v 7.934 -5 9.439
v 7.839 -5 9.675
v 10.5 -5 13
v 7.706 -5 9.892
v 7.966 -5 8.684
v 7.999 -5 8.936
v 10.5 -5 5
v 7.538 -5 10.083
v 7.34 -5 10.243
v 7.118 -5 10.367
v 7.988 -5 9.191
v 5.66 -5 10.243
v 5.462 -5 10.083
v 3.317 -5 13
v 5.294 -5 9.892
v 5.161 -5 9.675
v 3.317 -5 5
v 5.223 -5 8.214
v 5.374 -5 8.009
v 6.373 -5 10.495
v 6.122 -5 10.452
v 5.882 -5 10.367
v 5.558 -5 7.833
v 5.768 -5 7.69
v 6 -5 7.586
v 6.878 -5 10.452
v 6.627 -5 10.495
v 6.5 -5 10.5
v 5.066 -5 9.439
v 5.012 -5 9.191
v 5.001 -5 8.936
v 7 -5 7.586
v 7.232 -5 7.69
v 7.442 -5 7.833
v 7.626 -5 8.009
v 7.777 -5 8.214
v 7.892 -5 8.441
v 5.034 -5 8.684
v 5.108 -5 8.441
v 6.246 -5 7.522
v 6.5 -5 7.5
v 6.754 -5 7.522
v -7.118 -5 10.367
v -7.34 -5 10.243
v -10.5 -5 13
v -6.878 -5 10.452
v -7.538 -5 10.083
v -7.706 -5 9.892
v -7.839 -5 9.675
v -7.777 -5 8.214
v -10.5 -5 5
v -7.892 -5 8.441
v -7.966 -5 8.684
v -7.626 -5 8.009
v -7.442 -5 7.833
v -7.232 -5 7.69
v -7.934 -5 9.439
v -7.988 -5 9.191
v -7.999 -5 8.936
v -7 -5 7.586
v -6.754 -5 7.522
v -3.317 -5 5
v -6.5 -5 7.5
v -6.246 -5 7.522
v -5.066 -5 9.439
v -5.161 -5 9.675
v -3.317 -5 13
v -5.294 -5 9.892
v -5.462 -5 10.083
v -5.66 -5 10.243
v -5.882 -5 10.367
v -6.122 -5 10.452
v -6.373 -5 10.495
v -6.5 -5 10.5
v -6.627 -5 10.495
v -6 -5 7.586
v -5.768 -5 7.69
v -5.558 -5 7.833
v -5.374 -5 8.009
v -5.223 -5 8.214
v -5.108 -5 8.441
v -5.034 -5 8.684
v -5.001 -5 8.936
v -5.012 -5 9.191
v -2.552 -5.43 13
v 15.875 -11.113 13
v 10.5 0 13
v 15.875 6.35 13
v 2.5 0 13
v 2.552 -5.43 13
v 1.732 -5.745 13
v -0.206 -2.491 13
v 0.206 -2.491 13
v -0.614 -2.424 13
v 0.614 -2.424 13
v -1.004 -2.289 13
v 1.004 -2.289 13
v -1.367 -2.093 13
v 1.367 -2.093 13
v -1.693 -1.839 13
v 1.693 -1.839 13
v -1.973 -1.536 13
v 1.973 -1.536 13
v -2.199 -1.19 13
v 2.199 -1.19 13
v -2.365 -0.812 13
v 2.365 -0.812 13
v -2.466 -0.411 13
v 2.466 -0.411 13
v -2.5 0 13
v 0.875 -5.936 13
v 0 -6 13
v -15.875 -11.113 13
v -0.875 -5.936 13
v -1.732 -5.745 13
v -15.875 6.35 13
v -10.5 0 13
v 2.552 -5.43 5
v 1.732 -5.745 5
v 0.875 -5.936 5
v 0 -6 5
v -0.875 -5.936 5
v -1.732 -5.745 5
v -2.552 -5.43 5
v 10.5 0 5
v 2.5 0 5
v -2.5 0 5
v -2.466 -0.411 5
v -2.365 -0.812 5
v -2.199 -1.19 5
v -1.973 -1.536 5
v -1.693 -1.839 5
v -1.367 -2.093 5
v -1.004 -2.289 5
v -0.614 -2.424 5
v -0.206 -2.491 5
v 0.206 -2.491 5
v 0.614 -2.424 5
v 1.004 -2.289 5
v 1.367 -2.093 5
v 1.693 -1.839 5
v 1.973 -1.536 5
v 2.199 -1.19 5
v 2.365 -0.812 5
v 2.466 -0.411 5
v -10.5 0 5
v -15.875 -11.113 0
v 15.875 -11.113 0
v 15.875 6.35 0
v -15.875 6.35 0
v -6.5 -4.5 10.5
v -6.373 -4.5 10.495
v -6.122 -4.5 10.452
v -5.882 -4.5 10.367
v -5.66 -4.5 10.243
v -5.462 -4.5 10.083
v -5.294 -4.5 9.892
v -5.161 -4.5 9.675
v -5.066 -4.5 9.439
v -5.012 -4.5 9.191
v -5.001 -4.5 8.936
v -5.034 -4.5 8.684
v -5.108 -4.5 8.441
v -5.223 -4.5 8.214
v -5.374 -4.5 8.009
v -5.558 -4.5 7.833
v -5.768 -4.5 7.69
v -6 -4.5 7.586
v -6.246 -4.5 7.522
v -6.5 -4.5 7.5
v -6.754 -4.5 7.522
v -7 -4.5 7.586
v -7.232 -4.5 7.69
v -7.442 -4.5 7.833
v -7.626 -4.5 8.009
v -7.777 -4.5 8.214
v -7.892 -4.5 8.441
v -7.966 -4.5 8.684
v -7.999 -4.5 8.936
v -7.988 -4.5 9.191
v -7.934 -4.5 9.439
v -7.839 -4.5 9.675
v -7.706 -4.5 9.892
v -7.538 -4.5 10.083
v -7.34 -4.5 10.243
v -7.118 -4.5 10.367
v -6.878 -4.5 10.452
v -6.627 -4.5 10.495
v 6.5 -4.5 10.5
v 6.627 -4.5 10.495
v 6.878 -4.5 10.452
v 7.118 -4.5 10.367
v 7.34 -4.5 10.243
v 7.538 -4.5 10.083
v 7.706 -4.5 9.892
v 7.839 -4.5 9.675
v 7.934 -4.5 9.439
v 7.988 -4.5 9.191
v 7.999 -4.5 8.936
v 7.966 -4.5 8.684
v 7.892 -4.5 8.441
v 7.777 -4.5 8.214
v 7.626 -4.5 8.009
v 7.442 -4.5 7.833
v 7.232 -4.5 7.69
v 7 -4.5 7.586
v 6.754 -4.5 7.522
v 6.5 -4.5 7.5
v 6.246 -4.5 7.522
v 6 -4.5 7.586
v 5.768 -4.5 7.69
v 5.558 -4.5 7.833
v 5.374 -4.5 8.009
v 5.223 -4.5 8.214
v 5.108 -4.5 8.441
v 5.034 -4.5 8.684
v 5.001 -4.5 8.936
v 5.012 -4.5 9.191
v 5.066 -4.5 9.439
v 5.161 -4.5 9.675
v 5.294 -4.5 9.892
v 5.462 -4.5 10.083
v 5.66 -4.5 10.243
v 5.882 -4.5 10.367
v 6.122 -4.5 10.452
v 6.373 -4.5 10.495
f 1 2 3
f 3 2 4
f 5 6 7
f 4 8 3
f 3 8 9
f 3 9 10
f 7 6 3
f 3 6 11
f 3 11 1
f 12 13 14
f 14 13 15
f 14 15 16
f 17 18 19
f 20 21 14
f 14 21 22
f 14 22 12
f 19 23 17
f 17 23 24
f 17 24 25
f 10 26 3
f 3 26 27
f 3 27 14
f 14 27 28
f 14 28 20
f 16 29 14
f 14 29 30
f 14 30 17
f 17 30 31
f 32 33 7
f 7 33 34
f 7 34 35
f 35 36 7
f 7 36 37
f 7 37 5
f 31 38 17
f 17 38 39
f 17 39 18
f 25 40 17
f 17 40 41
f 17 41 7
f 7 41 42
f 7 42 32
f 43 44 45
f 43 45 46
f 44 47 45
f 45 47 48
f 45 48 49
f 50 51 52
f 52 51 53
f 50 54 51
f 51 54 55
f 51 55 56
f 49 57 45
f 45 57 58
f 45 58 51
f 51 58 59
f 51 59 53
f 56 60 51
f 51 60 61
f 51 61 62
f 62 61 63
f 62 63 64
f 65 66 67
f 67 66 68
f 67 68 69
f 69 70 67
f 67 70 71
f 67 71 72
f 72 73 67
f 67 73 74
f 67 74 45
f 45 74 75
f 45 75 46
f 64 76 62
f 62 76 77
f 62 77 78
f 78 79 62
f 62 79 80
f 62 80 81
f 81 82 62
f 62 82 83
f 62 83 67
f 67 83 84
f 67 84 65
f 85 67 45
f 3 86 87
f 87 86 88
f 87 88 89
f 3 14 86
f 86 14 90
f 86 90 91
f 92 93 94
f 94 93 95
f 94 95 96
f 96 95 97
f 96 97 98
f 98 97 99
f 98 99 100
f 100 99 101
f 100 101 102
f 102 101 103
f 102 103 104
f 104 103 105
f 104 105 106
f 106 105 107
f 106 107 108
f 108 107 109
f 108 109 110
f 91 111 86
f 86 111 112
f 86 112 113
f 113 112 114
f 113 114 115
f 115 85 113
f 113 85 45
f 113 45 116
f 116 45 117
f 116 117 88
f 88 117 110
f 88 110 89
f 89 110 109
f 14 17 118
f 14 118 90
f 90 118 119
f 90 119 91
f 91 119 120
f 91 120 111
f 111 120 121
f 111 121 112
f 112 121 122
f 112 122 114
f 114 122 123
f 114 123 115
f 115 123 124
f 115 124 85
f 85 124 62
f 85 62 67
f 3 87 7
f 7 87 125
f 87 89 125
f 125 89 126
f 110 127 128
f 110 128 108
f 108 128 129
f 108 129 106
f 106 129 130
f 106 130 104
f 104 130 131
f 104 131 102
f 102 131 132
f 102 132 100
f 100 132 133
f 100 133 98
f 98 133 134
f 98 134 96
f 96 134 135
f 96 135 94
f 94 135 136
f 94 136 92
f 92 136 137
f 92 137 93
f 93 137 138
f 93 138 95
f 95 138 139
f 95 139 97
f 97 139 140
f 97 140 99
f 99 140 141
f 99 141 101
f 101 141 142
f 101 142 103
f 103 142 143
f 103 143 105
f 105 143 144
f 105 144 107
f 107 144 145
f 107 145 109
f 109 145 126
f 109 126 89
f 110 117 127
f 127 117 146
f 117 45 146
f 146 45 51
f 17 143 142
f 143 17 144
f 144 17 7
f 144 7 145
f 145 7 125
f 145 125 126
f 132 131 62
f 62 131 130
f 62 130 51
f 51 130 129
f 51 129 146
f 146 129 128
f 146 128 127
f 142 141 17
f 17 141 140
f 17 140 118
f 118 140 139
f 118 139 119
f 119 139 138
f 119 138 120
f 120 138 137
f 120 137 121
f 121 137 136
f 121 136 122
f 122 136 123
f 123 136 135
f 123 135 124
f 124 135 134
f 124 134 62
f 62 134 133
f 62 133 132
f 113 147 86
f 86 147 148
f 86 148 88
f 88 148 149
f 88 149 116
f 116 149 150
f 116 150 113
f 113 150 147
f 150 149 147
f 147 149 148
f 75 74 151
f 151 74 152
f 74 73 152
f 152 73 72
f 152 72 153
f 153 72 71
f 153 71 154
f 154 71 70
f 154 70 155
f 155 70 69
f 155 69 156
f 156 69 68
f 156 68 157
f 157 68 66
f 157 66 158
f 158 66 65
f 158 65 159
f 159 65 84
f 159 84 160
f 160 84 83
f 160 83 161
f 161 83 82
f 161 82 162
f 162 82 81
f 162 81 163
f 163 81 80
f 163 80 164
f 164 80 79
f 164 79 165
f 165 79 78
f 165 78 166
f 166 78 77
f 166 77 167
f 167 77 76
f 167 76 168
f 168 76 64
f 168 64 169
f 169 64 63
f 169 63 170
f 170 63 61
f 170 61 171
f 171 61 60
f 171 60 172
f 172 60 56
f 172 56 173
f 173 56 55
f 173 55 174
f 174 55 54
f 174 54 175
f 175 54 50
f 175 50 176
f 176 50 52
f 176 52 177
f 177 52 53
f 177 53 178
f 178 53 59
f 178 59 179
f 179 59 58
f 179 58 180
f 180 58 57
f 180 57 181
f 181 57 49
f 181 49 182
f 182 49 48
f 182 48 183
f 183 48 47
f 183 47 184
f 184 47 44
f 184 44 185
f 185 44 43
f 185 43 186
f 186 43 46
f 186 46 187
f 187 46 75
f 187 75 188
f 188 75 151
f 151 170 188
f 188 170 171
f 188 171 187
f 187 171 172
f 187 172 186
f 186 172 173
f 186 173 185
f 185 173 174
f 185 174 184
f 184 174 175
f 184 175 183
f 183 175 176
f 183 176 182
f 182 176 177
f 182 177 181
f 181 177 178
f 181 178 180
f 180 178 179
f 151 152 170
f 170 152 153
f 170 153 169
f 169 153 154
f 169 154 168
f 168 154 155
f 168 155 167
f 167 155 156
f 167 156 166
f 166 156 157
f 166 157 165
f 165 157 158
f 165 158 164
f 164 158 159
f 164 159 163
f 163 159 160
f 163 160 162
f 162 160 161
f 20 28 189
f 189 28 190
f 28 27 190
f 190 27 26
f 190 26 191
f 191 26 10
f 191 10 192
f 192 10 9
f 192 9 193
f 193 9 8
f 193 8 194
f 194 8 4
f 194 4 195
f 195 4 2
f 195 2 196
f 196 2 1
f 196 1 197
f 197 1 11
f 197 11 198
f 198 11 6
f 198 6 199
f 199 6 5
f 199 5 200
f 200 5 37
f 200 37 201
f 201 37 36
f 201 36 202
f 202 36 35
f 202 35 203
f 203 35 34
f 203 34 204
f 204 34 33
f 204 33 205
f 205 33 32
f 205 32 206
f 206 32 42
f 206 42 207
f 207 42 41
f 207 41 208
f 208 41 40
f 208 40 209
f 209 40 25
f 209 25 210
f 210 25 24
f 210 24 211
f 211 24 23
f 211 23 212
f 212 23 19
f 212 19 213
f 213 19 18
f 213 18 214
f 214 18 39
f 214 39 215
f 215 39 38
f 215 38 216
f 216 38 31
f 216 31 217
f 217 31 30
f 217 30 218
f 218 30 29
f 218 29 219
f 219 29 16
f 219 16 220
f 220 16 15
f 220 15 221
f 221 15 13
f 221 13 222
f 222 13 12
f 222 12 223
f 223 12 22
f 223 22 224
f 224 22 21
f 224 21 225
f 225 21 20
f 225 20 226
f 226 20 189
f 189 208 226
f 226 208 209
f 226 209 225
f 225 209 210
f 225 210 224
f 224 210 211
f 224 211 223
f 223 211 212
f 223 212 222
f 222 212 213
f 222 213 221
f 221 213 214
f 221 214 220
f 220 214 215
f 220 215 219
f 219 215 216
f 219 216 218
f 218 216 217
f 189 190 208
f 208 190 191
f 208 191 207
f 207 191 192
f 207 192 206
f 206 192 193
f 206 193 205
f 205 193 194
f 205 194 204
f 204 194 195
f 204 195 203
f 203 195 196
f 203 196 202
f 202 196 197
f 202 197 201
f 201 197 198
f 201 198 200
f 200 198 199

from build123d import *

# Parameters (mm, degrees)
SKETCH1_R      = 24
EXTRUDE1_DEPTH = 5
SKETCH2_R      = 24
EXTRUDE2_DEPTH = 8
SKETCH9_R      = 24
SKETCH9_W      = 31.75
SKETCH9_H      = 17.4625
EXTRUDE4_DEPTH = 13
SKETCH11_R     = 1.5
EXTRUDE6_DEPTH = 0.5


with BuildPart() as part:
    # Sketch1 → Extrude1 (new body)
    with BuildSketch(Plane.XY):
        Circle(SKETCH1_R)
    extrude(amount=EXTRUDE1_DEPTH)

    # Sketch2 → Extrude2 (add)
    with BuildSketch(Plane.XY.offset(5)):
        Circle(SKETCH2_R)
        with BuildLine():
            Line((-2.5, 0), (-10.5, 0))
            Line((-10.5, 0), (-10.5, -5))
            Line((-10.5, -5), (-3.31662479, -5))
            ThreePointArc((-3.31662479, -5), (0, -6), (3.31662479, -5))
            Line((3.31662479, -5), (10.5, -5))
            Line((10.5, -5), (10.5, 0))
            Line((10.5, 0), (2.5, 0))
            ThreePointArc((2.5, 0), (0, -2.5), (-2.5, 0))
        make_face(mode=Mode.SUBTRACT)
    extrude(amount=EXTRUDE2_DEPTH)

    # Sketch9 → Extrude4 (cut)
    with BuildSketch(Plane.XY.offset(13)):
        Circle(SKETCH9_R)
        with Locations((0, -2.38125)):
            Rectangle(SKETCH9_W, SKETCH9_H, mode=Mode.SUBTRACT)
    extrude(amount=-EXTRUDE4_DEPTH, mode=Mode.SUBTRACT)

    # Sketch11 → Extrude6 (add)
    with BuildSketch(Plane(origin=(0, -5, 0), x_dir=(1, 0, 0), z_dir=(0, 1, 0))):
        with Locations((-6.5, -9)):
            Circle(SKETCH11_R)
        with Locations((6.5, -9)):
            Circle(SKETCH11_R)
    extrude(amount=EXTRUDE6_DEPTH)


solid = part.part
